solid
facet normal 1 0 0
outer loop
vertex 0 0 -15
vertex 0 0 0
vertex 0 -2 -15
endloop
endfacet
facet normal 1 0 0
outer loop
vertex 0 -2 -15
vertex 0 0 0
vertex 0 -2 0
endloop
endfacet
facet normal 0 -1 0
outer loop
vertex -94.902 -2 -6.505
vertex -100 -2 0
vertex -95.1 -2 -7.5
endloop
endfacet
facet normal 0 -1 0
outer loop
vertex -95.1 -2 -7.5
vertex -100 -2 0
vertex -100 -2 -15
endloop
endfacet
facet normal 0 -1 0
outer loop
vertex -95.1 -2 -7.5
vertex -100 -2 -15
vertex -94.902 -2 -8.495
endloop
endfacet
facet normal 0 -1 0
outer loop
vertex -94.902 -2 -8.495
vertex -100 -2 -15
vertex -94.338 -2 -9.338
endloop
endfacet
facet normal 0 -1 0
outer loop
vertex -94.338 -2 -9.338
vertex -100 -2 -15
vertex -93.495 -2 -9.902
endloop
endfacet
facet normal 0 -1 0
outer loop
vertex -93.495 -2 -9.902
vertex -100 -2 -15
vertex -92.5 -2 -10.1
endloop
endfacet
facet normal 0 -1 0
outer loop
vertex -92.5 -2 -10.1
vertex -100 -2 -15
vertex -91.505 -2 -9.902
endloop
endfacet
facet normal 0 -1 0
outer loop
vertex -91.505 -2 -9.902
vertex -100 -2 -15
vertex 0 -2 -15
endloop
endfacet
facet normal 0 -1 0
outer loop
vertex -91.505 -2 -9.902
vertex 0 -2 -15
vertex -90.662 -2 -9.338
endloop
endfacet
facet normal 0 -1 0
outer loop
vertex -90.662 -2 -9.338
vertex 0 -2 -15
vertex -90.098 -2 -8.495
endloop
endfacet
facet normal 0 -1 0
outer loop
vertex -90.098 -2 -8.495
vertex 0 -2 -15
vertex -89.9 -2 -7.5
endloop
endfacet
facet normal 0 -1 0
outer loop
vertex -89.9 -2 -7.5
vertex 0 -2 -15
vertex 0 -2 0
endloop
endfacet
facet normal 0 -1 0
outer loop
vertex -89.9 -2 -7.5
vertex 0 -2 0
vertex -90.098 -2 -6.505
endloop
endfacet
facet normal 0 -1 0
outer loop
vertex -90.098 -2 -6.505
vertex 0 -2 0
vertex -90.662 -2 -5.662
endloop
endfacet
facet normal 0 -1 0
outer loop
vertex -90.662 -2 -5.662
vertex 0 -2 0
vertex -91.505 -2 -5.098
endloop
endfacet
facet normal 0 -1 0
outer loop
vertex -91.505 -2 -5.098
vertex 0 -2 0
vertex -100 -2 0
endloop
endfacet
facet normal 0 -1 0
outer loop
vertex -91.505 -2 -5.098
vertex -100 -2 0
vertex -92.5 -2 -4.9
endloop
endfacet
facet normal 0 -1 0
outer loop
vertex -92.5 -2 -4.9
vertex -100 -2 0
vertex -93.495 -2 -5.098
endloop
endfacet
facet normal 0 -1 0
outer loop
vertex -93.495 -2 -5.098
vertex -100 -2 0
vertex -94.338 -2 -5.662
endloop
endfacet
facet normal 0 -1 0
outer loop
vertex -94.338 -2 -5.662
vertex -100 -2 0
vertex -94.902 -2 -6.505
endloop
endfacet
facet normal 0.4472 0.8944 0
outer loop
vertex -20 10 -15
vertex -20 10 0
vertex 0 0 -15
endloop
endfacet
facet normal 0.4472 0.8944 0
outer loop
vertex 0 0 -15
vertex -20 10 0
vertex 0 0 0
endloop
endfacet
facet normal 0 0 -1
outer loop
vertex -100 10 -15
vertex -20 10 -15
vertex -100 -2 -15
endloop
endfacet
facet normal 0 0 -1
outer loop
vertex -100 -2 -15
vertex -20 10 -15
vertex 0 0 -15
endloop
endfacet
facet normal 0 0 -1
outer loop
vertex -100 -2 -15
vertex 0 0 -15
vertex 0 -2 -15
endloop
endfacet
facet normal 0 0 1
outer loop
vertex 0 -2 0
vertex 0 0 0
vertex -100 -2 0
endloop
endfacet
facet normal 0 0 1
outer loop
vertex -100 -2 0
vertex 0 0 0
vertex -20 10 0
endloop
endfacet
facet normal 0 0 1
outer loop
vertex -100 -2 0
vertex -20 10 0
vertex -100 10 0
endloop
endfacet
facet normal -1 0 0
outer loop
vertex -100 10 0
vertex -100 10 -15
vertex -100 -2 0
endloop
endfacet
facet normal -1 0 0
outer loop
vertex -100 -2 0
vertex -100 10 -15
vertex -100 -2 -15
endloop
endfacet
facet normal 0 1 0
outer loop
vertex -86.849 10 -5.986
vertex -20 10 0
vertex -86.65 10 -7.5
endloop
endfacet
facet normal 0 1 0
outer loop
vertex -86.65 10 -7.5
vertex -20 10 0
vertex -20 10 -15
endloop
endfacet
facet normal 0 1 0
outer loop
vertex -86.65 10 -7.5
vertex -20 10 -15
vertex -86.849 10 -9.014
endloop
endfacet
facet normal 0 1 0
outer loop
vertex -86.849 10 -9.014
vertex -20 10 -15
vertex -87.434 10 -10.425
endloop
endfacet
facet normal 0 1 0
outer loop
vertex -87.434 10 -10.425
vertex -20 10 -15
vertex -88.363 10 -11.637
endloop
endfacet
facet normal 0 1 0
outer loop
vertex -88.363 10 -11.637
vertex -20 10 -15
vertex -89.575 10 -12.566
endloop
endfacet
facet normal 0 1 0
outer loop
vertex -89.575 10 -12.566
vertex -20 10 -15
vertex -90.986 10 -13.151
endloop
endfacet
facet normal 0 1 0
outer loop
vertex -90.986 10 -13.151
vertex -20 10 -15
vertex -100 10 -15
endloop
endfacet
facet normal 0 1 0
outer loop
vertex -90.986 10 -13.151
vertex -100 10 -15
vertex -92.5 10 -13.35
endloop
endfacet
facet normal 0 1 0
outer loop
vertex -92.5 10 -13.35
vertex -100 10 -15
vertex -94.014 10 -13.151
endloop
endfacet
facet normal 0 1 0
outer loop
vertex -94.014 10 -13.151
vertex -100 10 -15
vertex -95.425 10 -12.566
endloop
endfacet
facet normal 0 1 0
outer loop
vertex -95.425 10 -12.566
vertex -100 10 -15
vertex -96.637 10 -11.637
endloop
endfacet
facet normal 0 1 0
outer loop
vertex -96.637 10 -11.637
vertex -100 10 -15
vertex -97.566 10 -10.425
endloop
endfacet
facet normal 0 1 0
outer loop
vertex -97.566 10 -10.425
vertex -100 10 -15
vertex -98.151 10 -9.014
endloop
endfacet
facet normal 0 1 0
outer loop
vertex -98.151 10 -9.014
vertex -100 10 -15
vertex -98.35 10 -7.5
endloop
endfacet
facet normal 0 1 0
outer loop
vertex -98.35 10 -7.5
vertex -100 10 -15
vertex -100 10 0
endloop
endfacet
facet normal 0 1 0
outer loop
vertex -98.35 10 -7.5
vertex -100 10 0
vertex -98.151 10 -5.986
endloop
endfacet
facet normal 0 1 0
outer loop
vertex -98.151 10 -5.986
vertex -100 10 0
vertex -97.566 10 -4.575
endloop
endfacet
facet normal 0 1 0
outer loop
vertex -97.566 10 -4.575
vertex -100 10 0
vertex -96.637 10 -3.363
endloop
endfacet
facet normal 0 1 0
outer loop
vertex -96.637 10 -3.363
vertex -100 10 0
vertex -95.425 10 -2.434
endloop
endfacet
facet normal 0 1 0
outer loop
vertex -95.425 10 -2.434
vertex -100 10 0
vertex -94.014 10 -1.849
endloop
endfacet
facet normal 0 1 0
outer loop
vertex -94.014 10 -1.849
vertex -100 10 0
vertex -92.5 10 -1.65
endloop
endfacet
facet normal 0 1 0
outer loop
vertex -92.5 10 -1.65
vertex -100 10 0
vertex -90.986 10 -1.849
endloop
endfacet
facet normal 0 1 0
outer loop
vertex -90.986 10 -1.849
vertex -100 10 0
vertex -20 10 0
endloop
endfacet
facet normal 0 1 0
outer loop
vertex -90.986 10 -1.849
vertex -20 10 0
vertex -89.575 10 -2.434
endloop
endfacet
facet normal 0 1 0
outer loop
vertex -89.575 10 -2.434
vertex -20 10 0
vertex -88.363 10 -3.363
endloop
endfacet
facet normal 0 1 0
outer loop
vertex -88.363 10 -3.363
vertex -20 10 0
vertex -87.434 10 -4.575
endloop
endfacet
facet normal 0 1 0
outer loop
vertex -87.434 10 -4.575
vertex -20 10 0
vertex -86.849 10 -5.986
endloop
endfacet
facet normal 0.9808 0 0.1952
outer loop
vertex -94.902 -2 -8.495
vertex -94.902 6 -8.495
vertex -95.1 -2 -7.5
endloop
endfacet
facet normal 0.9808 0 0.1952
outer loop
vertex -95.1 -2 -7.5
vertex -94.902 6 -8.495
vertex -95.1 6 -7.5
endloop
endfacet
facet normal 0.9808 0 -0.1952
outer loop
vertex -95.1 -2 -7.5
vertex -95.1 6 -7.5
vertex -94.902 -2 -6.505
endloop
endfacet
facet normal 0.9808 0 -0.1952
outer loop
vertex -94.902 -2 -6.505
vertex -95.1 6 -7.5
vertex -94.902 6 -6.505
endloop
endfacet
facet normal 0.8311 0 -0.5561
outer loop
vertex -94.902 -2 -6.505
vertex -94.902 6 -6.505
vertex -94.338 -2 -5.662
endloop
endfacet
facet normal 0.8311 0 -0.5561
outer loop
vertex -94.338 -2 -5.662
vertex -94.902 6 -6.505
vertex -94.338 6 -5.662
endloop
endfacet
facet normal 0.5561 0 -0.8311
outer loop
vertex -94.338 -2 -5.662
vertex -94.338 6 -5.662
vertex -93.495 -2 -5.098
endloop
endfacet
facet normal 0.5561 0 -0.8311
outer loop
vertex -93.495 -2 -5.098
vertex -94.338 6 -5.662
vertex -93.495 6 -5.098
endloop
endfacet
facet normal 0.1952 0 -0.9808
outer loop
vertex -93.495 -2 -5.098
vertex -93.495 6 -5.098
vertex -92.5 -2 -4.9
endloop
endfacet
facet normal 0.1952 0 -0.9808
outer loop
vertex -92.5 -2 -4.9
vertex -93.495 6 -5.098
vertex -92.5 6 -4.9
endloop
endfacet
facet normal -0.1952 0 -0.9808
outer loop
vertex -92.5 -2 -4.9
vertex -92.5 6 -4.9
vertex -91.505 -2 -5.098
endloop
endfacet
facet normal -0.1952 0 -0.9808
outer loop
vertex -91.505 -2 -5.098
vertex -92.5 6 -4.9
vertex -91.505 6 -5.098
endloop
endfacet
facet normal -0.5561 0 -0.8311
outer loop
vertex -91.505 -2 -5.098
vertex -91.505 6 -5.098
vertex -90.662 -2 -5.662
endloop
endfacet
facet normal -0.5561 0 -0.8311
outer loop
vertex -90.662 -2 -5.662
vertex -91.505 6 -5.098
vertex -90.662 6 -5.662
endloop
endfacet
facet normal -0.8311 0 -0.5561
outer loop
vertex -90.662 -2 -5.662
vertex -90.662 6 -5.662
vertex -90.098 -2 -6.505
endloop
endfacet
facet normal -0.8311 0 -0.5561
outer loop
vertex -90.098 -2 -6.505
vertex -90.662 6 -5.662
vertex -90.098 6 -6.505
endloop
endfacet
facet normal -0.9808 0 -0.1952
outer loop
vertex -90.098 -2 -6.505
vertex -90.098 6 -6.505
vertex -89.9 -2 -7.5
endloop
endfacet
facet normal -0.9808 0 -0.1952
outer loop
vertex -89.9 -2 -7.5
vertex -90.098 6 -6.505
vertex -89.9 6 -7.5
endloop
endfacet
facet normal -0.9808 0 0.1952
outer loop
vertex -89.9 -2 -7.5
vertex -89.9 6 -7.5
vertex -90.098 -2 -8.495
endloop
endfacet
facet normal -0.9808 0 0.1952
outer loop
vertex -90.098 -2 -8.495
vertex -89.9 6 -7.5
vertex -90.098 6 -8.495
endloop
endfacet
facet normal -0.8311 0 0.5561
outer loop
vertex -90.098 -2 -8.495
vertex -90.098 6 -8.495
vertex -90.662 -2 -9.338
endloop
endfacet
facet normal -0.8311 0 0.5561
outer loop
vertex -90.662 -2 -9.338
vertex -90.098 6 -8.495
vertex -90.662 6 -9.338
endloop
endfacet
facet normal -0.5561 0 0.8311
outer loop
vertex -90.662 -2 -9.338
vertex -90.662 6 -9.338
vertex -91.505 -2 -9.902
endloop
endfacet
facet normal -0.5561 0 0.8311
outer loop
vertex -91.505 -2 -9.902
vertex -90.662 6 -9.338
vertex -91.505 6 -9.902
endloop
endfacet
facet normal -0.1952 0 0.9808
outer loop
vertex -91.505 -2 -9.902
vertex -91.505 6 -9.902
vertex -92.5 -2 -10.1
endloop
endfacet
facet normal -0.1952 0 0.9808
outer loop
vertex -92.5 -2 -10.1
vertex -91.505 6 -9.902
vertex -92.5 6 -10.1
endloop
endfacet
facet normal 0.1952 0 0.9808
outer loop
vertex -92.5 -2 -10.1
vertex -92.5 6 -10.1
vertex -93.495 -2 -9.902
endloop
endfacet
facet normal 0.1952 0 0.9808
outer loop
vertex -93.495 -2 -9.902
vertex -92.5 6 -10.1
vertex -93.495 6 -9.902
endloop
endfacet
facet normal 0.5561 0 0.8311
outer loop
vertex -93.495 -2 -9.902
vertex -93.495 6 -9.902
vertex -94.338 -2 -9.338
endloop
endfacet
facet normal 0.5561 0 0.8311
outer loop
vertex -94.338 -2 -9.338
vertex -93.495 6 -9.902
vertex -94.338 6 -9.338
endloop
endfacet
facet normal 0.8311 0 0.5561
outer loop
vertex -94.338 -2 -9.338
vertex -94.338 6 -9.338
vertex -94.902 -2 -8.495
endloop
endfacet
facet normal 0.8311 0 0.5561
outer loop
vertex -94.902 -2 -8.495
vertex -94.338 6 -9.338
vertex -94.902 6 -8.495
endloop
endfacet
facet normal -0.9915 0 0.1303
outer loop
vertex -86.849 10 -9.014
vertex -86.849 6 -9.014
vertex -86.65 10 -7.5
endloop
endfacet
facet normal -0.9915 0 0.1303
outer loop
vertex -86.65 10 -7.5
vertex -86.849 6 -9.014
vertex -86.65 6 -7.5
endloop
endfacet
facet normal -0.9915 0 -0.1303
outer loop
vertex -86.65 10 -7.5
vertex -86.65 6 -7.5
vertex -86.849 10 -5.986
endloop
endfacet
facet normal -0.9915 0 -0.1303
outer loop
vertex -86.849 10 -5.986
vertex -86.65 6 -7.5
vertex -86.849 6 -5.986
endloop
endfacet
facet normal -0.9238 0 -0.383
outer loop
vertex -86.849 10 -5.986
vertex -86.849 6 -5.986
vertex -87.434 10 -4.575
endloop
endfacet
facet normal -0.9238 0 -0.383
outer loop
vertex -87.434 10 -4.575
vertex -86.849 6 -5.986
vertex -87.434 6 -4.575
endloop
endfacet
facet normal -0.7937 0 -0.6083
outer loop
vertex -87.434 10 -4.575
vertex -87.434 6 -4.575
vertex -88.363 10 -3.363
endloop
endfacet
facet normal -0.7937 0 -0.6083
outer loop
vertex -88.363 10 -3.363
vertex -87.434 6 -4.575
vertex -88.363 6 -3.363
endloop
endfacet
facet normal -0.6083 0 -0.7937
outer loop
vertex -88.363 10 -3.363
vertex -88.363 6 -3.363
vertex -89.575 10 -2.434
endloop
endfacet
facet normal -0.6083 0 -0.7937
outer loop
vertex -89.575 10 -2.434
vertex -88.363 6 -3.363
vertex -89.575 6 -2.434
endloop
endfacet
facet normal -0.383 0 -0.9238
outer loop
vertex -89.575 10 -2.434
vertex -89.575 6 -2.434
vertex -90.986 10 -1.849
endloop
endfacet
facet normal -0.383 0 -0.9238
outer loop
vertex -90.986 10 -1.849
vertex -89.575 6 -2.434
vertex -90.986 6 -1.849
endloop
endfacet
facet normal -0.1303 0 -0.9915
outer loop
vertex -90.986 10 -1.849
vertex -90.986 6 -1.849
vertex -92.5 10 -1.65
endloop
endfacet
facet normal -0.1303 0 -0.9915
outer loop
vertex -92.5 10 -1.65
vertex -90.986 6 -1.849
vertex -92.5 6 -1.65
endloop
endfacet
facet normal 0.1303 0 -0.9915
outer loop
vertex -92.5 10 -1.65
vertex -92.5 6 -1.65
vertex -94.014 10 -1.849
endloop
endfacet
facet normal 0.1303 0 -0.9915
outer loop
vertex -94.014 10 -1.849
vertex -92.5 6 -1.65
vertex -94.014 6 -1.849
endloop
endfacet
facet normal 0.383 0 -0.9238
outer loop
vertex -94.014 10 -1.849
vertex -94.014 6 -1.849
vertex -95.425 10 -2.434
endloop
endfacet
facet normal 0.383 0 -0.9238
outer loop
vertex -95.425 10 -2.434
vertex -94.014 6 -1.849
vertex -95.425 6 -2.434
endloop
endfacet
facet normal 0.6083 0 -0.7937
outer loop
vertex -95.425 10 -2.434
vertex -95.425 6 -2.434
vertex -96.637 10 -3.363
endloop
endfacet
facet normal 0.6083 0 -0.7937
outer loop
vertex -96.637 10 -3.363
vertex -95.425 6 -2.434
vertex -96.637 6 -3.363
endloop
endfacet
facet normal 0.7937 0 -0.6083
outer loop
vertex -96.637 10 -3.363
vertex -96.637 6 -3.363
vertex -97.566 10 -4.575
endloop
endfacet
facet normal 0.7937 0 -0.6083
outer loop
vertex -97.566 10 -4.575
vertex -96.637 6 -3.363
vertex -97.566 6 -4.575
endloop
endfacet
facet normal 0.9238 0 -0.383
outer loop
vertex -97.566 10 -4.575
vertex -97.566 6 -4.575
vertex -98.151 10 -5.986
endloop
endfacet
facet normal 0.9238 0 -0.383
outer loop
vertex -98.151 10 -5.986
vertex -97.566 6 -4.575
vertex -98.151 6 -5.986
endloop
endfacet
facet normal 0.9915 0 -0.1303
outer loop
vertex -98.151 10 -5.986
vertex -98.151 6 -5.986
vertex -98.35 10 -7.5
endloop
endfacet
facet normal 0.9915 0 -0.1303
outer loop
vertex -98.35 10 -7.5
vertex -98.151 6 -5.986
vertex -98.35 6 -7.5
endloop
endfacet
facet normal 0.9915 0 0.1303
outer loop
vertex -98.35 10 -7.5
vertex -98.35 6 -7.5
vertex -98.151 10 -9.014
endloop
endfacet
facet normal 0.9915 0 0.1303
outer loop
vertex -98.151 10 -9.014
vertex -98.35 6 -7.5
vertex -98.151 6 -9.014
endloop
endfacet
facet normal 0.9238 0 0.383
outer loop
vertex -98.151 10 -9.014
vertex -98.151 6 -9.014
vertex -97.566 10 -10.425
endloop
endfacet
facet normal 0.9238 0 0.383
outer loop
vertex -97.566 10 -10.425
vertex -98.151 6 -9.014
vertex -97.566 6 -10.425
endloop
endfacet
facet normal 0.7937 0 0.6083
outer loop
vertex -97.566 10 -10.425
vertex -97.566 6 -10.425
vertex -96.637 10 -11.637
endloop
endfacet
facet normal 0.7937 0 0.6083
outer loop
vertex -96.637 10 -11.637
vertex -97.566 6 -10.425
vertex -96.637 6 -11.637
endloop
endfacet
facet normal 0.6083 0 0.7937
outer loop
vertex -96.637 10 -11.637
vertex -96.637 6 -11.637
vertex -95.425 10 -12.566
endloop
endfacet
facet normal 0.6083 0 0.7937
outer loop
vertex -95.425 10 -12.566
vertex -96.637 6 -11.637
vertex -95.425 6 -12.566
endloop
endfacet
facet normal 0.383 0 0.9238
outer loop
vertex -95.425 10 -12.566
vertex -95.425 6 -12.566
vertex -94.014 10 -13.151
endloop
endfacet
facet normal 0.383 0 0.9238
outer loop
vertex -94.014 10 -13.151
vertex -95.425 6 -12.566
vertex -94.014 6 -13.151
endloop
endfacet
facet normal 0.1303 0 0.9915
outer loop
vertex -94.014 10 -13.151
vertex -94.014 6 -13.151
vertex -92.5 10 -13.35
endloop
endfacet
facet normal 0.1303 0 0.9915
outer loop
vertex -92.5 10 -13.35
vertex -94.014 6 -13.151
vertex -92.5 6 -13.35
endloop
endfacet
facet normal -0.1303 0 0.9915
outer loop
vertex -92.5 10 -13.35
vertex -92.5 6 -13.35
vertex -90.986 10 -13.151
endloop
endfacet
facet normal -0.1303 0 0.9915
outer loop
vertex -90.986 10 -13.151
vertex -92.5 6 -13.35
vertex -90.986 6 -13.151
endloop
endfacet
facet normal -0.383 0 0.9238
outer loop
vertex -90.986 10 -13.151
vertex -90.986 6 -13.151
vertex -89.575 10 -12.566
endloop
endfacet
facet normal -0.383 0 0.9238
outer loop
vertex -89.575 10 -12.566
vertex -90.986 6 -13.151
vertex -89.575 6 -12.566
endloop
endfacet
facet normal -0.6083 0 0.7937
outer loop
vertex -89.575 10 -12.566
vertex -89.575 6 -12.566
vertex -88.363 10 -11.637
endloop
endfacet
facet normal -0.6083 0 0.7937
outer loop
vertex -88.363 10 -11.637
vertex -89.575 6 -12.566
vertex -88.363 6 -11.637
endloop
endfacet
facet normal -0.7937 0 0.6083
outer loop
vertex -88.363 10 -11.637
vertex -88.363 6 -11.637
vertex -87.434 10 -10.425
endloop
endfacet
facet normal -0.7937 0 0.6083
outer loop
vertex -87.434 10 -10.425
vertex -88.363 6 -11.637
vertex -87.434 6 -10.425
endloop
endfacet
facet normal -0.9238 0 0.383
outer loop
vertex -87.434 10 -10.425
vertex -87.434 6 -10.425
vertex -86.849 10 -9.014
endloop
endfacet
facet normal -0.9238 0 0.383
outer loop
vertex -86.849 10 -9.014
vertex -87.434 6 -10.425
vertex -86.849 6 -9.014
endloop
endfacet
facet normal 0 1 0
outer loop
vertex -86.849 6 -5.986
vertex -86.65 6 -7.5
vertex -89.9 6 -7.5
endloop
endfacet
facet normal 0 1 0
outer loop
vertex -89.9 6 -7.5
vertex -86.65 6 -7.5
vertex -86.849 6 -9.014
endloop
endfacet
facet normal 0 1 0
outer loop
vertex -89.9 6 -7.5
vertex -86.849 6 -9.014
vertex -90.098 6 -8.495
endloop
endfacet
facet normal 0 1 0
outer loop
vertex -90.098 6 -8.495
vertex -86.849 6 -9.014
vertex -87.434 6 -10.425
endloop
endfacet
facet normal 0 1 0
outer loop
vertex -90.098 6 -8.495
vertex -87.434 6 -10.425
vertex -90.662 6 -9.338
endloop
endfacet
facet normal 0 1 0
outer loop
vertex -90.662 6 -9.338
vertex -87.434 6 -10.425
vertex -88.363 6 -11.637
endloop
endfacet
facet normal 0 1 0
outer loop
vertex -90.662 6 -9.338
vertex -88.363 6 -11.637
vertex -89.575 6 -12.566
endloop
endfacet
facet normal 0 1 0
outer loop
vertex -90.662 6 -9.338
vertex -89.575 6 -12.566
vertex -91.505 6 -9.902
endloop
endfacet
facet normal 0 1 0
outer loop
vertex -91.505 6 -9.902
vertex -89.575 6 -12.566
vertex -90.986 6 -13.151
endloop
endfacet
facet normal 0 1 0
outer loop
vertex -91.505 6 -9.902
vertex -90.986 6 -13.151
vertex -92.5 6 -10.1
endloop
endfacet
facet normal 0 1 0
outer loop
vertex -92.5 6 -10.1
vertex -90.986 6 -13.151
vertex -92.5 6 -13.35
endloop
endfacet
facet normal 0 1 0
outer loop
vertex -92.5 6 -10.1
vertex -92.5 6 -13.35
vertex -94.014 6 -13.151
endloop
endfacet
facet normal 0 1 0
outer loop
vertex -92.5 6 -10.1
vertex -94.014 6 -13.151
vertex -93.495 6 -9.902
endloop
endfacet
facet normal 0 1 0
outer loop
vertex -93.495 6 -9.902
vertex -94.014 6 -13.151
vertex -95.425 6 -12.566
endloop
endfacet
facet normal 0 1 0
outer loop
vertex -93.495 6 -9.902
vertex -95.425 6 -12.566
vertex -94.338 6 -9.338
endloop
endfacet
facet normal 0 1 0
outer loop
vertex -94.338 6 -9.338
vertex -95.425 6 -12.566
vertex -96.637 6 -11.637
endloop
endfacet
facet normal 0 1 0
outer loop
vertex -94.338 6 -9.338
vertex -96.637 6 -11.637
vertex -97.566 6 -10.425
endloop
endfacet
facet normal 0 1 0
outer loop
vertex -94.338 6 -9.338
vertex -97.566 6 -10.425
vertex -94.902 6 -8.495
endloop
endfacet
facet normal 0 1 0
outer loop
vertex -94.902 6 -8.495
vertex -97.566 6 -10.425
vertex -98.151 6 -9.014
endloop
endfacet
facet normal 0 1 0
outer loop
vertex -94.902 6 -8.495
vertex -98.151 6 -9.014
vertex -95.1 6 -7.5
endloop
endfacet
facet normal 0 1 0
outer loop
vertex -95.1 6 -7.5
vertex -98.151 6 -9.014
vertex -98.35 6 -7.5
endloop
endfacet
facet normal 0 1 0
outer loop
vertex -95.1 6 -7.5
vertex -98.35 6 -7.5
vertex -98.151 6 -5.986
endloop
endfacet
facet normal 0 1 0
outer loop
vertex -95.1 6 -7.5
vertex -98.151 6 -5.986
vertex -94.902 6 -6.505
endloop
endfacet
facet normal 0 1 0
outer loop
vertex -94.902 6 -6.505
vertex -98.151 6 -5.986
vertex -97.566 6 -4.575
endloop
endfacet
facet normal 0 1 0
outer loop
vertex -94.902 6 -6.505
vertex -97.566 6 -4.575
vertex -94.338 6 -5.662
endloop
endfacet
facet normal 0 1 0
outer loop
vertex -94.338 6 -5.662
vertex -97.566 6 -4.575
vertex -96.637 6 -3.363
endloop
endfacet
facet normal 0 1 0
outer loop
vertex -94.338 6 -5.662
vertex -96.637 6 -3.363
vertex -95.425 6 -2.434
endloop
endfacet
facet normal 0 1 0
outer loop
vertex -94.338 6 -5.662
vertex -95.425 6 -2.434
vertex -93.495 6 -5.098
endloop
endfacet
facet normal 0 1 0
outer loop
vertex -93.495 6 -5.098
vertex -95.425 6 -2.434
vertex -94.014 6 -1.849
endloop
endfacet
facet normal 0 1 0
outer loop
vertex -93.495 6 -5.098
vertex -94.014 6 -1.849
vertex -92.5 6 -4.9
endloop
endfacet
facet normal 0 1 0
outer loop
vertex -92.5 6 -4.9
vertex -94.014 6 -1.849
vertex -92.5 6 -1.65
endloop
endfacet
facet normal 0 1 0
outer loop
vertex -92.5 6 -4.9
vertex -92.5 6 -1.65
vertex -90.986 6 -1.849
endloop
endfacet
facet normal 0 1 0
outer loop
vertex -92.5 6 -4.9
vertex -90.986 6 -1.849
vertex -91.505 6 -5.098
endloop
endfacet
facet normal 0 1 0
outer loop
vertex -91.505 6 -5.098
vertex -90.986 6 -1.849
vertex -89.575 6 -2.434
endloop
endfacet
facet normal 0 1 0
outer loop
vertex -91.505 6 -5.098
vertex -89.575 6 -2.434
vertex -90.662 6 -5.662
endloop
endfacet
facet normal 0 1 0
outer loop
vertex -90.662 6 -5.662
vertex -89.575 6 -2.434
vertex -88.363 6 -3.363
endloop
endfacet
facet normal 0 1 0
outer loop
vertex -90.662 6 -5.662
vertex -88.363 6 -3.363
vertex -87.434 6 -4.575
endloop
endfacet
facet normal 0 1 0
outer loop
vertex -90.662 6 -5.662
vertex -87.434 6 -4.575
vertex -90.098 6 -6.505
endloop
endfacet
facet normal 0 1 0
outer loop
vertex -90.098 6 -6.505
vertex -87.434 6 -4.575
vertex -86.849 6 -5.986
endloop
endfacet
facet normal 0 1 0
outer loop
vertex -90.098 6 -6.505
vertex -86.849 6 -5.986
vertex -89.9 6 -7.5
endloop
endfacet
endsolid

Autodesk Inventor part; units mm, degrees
ref_plane "YZ Plane" through (0, 0, 0) normal (1, 0, 0) x (0, 1, 0)
ref_plane "XZ Plane" through (0, 0, 0) normal (0, 1, 0) x (-1, 0, 0)
ref_plane "XY Plane" through (0, 0, 0) normal (0, 0, 1) x (1, 0, 0)
sketch "Boceto1" plane through (0, 0, 0) normal (0, 1, 0) x (-1, 0, 0)
  line L0 (0, 0) -> (100, 0)
  line L1 (100, 0) -> (100, -15)
  line L2 (100, -15) -> (0, -15)
  line L3 (0, -15) -> (0, 0)
  dimension "d0" = 100
  dimension "d1" = 15
extrude "Extrusión1" add sketch "Boceto1" along normal blind 10
sketch "Boceto3" plane through (0, 0, 0) normal (1, 0, 0) x (0, 0, -1)
  point P0 (0, 0)
chamfer "Chaflán1" distance 20 distance2 10 1 edges at (0, 10, -7.5) measured on face at (-33.3333, 10, -5)
sketch "Boceto4" plane through (0, 0, 0) normal (0, -1, 0) x (1, 0, 0)
  line L0 (0, -15) -> (-100, -15) projected
  line L1 (0, -15) -> (-100, -15)
  line L2 (-100, -15) -> (-100, 0)
  line L3 (-100, 0) -> (0, 0)
  line L4 (0, 0) -> (0, -15)
  dimension "d25" = 100
extrude "Extrusión2" add sketch "Boceto4" along normal blind 2
sketch "Boceto6" plane through (0, 10, 0) normal (0, 1, 0) x (1, 0, 0)
  line L0 (-100, 15) -> (-100, 0) projected
  line L1 (-100, 0) -> (-20, 0) projected
  point P0 (0, 0)
  point P1 (-92.5, 7.5)
  dimension "d26" = 7.5
  dimension "d27" = 7.5
hole "Agujero3" at (-92.5, 10, -7.5) direction (0, -1, 0) diameter 5.2 end through all counterbore diameter 11.7 counterbore depth 4
properties part number "cuña 10cm"
